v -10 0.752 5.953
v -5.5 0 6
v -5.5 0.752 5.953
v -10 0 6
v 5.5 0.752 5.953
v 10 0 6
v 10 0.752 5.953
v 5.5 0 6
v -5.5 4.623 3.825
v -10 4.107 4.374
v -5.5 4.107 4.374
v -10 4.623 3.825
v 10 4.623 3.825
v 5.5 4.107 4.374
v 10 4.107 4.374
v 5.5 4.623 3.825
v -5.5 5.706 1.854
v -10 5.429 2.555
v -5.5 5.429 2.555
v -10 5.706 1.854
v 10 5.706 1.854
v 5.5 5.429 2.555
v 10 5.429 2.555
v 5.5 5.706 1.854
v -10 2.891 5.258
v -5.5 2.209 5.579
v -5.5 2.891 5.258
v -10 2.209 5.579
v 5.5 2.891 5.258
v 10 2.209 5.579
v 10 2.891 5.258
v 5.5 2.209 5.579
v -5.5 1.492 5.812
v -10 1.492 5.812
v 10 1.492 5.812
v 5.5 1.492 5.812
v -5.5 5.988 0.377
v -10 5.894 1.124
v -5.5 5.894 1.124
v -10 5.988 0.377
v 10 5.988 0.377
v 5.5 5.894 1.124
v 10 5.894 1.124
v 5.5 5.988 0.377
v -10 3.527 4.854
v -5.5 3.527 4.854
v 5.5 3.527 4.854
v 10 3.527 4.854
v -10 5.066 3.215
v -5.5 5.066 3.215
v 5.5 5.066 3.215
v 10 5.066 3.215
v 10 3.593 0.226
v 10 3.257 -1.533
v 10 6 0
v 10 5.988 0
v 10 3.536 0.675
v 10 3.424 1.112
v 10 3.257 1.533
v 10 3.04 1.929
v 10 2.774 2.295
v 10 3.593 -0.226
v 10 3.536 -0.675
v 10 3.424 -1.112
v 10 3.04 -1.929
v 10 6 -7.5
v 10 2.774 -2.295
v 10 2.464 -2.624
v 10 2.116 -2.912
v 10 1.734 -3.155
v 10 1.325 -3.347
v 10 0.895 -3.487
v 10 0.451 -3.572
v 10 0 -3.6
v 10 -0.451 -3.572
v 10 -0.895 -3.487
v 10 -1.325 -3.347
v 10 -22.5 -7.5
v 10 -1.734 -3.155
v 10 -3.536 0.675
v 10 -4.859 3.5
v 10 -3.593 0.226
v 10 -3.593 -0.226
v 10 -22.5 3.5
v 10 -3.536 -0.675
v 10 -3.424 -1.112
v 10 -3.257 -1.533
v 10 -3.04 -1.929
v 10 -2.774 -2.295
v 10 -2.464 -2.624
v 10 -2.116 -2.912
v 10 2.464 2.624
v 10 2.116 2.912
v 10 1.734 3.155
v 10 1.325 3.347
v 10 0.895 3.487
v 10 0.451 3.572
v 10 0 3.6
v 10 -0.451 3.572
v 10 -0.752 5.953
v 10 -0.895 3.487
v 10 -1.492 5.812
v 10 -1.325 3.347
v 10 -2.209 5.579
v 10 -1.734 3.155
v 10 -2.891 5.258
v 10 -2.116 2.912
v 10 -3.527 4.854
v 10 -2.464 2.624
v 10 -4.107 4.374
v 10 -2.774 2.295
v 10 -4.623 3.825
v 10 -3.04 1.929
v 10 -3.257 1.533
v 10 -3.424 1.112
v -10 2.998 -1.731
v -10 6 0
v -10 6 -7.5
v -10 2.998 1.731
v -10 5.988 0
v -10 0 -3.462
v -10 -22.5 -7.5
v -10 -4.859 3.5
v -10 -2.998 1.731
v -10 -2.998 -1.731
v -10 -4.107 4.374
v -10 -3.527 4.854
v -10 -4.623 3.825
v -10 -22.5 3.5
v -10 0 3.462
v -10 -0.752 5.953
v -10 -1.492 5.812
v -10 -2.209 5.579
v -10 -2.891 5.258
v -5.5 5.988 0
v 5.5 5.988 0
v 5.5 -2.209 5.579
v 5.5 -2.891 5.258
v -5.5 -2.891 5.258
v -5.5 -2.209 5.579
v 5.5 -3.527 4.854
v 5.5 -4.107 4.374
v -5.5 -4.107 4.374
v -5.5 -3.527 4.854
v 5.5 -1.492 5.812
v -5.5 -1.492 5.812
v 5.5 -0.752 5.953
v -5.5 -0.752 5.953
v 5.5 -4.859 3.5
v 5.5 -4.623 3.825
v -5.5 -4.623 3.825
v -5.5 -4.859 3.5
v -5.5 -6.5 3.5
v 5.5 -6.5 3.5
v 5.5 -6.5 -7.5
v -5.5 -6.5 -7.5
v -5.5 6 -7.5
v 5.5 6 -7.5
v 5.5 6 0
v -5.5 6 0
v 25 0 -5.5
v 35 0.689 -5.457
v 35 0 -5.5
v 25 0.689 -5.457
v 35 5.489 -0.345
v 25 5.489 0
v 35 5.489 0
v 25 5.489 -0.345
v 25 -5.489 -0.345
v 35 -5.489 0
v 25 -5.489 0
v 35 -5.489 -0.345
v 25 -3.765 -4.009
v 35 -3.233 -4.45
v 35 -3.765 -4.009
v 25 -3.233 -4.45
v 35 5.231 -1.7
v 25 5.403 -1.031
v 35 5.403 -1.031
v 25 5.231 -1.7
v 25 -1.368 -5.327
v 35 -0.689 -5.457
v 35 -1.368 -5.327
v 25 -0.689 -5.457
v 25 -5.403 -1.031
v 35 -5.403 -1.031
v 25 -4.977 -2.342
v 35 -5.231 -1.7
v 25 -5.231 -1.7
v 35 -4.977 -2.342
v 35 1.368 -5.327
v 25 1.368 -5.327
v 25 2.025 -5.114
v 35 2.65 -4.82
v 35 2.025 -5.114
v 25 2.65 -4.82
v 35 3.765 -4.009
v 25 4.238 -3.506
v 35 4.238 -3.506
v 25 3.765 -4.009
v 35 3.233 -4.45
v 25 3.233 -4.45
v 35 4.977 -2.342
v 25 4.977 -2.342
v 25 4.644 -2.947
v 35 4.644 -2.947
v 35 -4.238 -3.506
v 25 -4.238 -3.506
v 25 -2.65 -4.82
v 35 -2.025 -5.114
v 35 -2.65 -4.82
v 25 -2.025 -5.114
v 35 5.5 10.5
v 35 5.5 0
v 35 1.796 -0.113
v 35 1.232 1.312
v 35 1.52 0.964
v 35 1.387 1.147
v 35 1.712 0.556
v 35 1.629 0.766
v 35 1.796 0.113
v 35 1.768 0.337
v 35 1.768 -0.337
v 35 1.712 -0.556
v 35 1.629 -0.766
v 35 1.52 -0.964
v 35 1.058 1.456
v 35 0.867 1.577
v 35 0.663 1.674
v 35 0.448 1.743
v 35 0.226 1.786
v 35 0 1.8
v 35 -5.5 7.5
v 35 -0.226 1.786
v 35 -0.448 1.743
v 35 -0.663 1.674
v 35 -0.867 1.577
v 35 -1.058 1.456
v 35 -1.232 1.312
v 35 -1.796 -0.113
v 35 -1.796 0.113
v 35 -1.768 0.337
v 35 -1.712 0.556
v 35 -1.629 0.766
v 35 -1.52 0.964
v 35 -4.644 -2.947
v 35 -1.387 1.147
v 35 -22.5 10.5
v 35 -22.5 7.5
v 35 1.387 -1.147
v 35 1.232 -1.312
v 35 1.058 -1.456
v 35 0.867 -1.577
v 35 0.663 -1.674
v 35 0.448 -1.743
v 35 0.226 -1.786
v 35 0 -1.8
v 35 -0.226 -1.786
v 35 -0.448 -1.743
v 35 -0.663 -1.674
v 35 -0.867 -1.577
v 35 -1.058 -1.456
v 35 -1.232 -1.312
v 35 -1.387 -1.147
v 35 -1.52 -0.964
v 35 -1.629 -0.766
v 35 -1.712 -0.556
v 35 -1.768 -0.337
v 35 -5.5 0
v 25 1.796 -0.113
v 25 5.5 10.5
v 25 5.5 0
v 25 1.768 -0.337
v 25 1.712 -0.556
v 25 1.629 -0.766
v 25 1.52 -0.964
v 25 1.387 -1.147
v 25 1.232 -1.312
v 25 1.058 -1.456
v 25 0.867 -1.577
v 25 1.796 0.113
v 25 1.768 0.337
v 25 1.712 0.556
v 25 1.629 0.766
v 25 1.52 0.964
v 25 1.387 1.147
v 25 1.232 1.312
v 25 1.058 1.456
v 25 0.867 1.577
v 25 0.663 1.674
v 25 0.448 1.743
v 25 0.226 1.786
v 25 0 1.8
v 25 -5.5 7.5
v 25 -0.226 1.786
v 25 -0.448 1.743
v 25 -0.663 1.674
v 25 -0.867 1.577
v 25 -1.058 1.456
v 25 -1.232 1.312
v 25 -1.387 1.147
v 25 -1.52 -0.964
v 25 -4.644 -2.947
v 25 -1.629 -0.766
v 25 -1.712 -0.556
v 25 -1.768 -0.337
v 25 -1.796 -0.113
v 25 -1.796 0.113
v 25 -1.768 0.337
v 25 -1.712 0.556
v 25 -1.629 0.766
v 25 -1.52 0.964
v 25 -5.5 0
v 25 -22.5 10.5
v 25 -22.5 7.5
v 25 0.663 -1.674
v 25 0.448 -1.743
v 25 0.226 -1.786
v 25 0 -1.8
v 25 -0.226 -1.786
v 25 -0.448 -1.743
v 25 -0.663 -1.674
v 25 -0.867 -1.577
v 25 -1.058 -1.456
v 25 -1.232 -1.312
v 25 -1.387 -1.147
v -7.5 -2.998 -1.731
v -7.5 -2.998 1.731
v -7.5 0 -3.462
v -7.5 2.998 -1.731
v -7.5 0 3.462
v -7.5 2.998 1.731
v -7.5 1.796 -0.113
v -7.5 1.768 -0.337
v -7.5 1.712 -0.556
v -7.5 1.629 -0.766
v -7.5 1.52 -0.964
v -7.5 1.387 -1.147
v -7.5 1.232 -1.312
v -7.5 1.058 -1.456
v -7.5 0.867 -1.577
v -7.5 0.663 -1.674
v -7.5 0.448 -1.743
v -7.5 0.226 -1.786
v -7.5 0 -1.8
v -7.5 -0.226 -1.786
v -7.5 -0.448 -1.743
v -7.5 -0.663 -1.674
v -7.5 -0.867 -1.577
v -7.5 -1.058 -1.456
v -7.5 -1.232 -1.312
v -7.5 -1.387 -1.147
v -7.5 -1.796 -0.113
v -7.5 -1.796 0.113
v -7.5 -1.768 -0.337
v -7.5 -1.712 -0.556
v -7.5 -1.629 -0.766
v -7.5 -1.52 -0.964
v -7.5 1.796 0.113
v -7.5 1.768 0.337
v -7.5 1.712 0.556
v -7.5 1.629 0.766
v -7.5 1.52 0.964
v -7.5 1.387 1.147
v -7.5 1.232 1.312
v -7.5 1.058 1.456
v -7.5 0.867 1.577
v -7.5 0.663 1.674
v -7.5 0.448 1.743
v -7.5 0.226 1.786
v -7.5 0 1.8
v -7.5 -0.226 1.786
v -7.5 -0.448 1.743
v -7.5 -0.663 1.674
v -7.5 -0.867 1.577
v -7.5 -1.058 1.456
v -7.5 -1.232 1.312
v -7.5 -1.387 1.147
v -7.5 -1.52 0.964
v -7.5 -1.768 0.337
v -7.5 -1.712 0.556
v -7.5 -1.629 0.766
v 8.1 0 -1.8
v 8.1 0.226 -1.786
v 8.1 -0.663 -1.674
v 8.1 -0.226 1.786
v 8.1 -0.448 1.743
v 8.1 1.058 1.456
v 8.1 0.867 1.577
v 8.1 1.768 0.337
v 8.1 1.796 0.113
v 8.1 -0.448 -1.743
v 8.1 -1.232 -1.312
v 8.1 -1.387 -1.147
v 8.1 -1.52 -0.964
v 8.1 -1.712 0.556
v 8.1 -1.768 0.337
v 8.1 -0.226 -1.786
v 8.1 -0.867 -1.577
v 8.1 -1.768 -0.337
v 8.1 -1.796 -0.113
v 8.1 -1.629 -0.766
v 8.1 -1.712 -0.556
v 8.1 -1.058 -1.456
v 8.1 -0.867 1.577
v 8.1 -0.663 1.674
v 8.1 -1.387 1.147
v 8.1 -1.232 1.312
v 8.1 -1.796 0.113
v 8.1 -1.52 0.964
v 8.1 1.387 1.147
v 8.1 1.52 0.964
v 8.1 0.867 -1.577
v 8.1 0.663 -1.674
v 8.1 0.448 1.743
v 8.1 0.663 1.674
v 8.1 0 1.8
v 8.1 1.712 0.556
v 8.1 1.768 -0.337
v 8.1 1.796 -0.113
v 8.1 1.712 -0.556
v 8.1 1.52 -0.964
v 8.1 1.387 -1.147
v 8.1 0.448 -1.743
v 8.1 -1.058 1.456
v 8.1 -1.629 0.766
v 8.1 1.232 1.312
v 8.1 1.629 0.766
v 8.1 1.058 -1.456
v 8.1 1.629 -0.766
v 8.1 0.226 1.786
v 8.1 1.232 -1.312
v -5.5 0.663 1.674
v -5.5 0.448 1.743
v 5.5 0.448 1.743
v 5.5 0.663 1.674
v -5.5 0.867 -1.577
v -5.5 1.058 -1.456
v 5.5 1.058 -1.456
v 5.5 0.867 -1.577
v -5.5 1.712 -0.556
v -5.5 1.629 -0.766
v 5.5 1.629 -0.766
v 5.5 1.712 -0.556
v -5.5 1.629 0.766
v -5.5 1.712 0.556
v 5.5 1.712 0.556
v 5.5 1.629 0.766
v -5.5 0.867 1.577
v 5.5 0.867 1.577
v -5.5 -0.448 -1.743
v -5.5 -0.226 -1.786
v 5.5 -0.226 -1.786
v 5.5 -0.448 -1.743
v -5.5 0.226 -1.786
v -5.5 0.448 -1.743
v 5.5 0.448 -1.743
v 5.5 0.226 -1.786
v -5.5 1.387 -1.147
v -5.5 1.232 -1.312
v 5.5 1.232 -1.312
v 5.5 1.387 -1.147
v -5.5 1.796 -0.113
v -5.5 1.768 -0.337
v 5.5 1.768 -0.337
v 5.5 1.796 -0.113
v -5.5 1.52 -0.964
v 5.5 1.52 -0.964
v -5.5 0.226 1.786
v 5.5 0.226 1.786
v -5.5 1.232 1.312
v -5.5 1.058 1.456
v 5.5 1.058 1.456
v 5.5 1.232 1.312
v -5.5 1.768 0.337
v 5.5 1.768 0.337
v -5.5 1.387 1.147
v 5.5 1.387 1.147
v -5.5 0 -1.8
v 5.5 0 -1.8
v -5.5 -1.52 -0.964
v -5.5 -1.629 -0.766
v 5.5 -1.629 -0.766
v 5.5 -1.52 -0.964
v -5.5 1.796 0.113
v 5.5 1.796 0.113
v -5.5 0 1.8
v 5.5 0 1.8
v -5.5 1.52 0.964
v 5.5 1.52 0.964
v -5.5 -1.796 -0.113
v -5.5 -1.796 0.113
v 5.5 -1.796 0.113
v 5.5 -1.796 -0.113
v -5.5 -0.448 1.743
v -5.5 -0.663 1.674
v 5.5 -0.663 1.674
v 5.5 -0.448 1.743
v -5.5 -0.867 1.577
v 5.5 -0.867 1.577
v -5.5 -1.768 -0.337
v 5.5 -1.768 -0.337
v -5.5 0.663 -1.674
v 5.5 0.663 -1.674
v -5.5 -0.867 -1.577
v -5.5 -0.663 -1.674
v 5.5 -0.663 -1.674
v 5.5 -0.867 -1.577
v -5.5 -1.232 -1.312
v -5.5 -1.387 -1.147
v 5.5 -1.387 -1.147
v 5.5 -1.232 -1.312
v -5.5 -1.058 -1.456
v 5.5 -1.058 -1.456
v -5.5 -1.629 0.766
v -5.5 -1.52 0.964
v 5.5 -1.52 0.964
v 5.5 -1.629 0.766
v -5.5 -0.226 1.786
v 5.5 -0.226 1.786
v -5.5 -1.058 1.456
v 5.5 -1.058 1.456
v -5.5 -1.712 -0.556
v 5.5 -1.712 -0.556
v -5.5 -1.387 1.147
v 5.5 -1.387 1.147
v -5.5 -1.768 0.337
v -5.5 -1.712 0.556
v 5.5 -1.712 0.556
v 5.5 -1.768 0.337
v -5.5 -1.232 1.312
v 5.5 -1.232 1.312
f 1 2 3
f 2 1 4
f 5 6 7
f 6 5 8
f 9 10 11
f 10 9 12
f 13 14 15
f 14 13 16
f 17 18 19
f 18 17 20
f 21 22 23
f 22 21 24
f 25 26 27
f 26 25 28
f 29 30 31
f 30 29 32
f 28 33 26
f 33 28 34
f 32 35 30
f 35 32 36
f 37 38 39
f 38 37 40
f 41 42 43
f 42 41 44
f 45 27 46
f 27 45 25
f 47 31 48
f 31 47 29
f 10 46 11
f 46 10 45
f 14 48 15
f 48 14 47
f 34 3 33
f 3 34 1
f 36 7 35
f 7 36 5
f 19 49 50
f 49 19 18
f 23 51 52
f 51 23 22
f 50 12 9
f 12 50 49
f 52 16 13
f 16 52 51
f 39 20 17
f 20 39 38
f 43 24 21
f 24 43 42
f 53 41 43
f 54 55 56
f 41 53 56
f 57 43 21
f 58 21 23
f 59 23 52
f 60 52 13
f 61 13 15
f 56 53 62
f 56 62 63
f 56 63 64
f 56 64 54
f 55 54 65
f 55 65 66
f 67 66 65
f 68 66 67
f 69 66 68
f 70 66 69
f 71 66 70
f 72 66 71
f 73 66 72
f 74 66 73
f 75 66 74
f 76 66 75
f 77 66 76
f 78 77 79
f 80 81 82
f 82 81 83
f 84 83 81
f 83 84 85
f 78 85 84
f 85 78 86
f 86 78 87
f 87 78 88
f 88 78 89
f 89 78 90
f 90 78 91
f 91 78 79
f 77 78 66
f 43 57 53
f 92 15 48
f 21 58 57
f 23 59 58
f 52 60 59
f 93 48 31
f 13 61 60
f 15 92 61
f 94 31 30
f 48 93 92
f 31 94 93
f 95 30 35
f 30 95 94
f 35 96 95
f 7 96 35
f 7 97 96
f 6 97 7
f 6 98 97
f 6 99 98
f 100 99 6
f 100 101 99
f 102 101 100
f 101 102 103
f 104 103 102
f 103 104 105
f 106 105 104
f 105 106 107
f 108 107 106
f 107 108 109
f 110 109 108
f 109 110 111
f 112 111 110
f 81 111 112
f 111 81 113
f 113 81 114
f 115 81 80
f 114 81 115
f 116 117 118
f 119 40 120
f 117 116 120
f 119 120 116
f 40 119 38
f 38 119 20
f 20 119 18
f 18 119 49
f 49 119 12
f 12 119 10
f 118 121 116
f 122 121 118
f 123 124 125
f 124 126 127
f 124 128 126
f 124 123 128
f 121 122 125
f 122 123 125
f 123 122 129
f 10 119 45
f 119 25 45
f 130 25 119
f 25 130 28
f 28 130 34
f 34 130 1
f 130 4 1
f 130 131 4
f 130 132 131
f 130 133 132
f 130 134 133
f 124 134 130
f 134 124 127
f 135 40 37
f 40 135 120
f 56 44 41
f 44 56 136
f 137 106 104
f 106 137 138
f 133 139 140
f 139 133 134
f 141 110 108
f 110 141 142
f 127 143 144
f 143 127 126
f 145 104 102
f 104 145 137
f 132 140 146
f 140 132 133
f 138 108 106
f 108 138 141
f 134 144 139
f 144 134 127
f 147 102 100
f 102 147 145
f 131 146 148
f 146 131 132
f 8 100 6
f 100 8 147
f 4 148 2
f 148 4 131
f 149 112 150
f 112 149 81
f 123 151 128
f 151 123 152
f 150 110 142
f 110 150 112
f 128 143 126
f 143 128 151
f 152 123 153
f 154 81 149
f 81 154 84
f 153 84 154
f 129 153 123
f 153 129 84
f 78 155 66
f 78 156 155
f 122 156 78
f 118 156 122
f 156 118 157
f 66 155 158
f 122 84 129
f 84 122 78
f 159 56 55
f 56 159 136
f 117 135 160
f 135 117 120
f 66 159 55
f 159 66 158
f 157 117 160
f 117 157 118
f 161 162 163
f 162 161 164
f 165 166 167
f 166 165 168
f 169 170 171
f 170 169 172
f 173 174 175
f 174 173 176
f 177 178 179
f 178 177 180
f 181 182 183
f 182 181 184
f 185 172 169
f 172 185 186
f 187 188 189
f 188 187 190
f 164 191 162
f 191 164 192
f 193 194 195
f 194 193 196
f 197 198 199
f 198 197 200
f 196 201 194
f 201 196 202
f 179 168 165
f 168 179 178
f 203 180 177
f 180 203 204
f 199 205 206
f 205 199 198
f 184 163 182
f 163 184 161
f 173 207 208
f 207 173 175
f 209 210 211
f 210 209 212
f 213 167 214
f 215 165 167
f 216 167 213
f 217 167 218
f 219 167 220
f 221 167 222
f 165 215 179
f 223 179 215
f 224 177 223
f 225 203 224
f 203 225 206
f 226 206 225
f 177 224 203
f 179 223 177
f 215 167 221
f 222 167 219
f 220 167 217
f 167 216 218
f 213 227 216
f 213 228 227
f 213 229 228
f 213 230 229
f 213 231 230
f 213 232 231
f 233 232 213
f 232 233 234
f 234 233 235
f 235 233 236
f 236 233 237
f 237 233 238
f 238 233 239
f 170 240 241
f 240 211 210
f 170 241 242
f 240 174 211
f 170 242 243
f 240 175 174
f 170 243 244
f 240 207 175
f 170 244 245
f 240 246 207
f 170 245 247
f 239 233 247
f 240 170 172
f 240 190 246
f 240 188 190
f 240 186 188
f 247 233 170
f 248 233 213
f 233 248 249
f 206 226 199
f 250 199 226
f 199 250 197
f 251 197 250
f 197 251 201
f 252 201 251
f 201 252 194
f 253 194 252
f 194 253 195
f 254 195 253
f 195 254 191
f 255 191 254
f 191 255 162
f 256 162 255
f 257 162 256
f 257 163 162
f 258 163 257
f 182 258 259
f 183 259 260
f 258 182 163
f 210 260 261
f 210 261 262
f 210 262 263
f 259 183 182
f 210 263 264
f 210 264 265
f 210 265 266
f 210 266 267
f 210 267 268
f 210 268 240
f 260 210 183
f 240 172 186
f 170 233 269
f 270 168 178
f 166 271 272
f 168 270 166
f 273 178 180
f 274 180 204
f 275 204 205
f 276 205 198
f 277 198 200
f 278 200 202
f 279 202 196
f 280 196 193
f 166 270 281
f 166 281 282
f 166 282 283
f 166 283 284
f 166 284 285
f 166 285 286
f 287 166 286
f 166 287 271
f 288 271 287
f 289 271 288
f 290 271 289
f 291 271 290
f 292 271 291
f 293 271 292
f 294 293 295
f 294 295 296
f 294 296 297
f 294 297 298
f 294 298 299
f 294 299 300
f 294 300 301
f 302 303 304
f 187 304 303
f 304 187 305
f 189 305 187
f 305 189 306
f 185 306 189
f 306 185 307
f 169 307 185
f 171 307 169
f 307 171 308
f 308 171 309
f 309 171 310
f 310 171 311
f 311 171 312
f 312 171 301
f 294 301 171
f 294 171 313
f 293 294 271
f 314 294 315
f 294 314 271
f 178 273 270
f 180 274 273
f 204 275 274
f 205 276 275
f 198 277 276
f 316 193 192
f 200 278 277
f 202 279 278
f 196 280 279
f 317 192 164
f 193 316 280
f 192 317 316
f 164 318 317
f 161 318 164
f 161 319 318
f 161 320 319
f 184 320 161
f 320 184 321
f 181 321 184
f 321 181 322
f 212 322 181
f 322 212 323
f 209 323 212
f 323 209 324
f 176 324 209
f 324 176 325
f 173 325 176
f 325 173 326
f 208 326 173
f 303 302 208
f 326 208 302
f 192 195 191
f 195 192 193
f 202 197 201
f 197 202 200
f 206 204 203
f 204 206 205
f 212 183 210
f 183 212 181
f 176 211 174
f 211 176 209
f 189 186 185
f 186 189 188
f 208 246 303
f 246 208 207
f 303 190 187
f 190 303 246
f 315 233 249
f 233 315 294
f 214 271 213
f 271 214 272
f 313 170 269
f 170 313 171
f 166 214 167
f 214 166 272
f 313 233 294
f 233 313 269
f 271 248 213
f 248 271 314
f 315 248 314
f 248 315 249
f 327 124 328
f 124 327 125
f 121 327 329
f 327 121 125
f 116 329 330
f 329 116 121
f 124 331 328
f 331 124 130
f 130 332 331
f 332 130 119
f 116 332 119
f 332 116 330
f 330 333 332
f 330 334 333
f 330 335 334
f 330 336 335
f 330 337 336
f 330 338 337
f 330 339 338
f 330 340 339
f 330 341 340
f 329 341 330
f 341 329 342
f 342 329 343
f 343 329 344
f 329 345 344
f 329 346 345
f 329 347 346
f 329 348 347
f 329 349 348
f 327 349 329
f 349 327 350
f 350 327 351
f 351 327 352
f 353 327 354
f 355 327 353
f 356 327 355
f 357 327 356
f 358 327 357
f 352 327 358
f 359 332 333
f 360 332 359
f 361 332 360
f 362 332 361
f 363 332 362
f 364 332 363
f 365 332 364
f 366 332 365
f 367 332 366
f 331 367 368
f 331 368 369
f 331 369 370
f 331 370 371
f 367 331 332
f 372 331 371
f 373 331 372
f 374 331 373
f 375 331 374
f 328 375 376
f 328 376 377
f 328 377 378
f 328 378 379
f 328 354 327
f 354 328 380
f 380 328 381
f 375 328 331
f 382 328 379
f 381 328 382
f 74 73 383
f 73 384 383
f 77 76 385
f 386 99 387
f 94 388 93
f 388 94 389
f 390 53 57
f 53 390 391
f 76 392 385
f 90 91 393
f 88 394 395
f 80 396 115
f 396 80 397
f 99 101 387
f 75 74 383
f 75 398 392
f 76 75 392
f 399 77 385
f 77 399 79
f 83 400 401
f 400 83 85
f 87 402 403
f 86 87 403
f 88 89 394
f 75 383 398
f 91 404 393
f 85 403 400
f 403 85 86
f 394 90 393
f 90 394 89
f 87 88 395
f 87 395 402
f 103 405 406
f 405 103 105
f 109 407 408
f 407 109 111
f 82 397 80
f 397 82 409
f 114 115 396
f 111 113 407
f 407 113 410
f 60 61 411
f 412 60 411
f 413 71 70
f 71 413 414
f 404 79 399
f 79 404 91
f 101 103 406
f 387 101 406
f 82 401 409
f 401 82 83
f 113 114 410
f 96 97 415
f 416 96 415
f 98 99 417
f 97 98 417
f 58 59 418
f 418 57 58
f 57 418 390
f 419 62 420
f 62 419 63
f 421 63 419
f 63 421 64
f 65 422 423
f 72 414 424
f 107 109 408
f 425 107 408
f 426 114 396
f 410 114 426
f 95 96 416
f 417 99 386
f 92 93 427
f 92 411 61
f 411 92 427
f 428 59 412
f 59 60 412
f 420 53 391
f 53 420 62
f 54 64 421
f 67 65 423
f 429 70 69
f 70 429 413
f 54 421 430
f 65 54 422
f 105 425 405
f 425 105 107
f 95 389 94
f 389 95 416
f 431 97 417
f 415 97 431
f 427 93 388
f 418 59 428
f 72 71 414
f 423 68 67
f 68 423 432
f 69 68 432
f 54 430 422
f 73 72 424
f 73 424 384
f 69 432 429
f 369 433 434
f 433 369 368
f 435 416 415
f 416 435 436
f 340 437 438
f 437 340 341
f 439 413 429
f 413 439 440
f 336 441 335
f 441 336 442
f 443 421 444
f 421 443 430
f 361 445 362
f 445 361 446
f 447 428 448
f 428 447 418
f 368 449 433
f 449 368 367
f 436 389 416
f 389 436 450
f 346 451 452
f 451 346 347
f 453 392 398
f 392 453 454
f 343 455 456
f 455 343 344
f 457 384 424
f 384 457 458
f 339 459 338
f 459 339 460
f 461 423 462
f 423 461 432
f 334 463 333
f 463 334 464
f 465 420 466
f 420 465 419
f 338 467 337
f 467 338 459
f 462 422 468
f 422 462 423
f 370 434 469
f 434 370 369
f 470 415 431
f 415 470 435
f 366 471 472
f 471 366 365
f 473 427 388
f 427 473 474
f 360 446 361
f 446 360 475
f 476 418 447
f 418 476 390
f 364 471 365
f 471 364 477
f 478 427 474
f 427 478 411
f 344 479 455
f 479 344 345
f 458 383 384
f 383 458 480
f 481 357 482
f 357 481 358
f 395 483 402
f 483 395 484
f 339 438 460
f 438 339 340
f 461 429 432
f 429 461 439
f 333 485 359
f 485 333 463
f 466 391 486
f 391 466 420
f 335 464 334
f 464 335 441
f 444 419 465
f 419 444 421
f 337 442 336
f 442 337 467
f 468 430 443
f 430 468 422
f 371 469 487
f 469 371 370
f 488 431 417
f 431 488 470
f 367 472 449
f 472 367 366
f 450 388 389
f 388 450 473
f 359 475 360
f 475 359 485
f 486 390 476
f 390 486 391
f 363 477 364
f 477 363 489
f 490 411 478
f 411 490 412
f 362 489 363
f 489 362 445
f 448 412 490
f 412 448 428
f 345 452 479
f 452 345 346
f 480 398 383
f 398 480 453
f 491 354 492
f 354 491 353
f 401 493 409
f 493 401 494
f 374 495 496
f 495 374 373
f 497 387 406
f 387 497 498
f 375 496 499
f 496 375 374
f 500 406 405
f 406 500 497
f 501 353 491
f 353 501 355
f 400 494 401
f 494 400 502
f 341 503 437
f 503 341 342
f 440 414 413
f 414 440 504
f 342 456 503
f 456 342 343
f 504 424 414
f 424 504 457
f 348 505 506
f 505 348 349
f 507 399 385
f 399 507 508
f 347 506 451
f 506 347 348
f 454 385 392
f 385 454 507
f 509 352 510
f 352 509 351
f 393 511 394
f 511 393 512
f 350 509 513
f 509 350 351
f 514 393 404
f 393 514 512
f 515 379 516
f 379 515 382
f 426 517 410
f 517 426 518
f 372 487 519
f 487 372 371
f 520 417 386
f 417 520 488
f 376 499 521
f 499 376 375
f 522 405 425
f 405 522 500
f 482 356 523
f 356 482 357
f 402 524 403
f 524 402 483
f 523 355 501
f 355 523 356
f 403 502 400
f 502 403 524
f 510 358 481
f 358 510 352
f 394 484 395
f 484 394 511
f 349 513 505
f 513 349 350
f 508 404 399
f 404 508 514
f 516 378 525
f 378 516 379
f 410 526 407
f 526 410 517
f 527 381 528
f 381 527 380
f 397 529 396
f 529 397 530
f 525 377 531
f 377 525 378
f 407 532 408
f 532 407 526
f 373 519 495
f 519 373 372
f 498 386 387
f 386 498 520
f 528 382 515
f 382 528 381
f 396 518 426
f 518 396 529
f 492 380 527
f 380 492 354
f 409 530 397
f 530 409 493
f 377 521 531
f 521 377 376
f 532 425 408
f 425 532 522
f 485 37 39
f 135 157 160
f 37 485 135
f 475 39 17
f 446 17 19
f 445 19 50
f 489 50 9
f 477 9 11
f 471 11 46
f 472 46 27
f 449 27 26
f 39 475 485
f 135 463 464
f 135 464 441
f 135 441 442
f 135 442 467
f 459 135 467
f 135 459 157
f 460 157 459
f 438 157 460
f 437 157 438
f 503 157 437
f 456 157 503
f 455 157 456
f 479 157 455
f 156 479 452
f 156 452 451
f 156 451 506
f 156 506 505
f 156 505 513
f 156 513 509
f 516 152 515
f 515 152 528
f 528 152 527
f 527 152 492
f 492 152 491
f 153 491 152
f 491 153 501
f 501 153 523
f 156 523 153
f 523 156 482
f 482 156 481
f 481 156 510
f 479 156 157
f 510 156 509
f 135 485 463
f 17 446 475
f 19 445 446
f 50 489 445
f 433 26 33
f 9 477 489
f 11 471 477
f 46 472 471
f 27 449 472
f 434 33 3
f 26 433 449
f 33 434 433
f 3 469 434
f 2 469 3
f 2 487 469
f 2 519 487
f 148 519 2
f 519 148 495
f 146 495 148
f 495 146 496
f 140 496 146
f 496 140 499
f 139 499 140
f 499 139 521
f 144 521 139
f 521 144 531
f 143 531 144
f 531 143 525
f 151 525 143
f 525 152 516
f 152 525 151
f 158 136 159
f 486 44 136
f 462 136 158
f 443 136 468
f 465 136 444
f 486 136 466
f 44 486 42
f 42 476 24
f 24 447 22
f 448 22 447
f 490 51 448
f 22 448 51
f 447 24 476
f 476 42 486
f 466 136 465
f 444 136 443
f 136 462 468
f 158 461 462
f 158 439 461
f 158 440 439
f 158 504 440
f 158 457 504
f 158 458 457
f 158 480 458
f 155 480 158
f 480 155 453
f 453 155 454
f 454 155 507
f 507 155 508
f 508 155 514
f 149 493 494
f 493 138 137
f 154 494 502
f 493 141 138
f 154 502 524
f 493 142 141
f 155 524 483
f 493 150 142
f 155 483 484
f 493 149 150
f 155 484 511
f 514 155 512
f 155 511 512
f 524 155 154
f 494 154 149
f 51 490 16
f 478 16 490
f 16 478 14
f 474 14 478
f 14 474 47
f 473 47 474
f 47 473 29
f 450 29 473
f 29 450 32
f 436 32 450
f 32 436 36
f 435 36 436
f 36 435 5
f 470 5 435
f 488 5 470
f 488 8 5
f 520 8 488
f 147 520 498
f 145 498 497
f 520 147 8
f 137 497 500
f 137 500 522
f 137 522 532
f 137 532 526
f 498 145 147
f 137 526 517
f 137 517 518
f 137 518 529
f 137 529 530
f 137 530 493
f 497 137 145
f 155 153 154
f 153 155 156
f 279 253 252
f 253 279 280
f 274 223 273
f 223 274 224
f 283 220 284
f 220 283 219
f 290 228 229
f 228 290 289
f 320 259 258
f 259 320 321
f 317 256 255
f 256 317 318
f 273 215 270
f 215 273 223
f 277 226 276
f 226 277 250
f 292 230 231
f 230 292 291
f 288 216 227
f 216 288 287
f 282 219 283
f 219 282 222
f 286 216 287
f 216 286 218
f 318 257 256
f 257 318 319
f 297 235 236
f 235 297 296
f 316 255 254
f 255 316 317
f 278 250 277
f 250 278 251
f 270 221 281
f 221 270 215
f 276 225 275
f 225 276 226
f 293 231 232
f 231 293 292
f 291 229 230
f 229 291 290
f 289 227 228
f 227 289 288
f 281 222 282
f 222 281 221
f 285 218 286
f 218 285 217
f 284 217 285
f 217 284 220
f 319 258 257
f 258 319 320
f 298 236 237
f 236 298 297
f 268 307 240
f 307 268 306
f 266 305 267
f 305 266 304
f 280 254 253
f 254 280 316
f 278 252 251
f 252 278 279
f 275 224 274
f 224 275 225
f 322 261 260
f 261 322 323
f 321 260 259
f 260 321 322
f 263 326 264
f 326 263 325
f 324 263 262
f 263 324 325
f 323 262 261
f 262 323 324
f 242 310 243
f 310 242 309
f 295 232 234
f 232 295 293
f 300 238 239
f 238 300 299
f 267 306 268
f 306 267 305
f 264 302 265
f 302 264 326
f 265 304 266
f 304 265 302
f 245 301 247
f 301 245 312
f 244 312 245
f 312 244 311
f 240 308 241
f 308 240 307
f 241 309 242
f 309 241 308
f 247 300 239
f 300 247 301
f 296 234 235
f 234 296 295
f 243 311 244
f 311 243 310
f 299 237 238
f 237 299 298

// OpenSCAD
$fn = 50;


difference() {
	union() {
		translate(v = [-10.0000000000, 0, 0.0000000000]) {
			rotate(a = [0, 90, 0]) {
				cylinder(h = 20, r = 6.0000000000);
			}
		}
		translate(v = [-10.0000000000, -22.5000000000, -7.5000000000]) {
			cube(size = [20, 22.5000000000, 11]);
		}
		translate(v = [-10.0000000000, -21.0000000000, -7.5000000000]) {
			cube(size = [20, 27, 7.5000000000]);
		}
		translate(v = [25.0000000000, 0, 0.0000000000]) {
			rotate(a = [0, 90, 0]) {
				cylinder(h = 10, r = 5.5000000000);
			}
		}
		translate(v = [25.0000000000, -5.5000000000, 0]) {
			cube(size = [10, 11, 7.5000000000]);
		}
		translate(v = [25.0000000000, -22.5000000000, 7.5000000000]) {
			cube(size = [10, 28.0000000000, 3]);
		}
	}
	union() {
		translate(v = [10.0000000000, 0, 0]) {
			rotate(a = [0, 90, 0]) {
				difference() {
					union() {
						translate(v = [0, 0, -20.0000000000]) {
							rotate(a = [0, 0, 0]) {
								difference() {
									union() {
										linear_extrude(height = 2.5000000000) {
											polygon(points = [[3.4620000000, 0.0000000000], [1.7310000000, 2.9981799479], [-1.7310000000, 2.9981799479], [-3.4620000000, 0.0000000000], [-1.7310000000, -2.9981799479], [1.7310000000, -2.9981799479]]);
										}
									}
									union();
								}
							}
						}
						translate(v = [0, 0, -20.0000000000]) {
							rotate(a = [0, 0, 0]) {
								difference() {
									union() {
										linear_extrude(height = 2.5000000000) {
											polygon(points = [[3.4620000000, 0.0000000000], [1.7310000000, 2.9981799479], [-1.7310000000, 2.9981799479], [-3.4620000000, 0.0000000000], [-1.7310000000, -2.9981799479], [1.7310000000, -2.9981799479]]);
										}
									}
									union();
								}
							}
						}
						translate(v = [0, 0, -20.0000000000]) {
							rotate(a = [0, 0, 0]) {
								difference() {
									union() {
										linear_extrude(height = 2.5000000000) {
											polygon(points = [[3.4620000000, 0.0000000000], [1.7310000000, 2.9981799479], [-1.7310000000, 2.9981799479], [-3.4620000000, 0.0000000000], [-1.7310000000, -2.9981799479], [1.7310000000, -2.9981799479]]);
										}
									}
									union();
								}
							}
						}
						translate(v = [0, 0, -20.0000000000]) {
							cylinder(h = 20, r = 1.5000000000);
						}
						translate(v = [0, 0, -1.9000000000]) {
							cylinder(h = 1.9000000000, r1 = 1.8000000000, r2 = 3.6000000000);
						}
						translate(v = [0, 0, -20.0000000000]) {
							cylinder(h = 20, r = 1.8000000000);
						}
						translate(v = [0, 0, -20.0000000000]) {
							cylinder(h = 20, r = 1.5000000000);
						}
					}
					union();
				}
			}
		}
		translate(v = [-5.5000000000, -6.5000000000, -7.5000000000]) {
			cube(size = [11, 16, 15]);
		}
		translate(v = [25.0000000000, 0, 0]) {
			rotate(a = [0, 90, 0]) {
				cylinder(h = 10, r = 1.8000000000);
			}
		}
	}
}
